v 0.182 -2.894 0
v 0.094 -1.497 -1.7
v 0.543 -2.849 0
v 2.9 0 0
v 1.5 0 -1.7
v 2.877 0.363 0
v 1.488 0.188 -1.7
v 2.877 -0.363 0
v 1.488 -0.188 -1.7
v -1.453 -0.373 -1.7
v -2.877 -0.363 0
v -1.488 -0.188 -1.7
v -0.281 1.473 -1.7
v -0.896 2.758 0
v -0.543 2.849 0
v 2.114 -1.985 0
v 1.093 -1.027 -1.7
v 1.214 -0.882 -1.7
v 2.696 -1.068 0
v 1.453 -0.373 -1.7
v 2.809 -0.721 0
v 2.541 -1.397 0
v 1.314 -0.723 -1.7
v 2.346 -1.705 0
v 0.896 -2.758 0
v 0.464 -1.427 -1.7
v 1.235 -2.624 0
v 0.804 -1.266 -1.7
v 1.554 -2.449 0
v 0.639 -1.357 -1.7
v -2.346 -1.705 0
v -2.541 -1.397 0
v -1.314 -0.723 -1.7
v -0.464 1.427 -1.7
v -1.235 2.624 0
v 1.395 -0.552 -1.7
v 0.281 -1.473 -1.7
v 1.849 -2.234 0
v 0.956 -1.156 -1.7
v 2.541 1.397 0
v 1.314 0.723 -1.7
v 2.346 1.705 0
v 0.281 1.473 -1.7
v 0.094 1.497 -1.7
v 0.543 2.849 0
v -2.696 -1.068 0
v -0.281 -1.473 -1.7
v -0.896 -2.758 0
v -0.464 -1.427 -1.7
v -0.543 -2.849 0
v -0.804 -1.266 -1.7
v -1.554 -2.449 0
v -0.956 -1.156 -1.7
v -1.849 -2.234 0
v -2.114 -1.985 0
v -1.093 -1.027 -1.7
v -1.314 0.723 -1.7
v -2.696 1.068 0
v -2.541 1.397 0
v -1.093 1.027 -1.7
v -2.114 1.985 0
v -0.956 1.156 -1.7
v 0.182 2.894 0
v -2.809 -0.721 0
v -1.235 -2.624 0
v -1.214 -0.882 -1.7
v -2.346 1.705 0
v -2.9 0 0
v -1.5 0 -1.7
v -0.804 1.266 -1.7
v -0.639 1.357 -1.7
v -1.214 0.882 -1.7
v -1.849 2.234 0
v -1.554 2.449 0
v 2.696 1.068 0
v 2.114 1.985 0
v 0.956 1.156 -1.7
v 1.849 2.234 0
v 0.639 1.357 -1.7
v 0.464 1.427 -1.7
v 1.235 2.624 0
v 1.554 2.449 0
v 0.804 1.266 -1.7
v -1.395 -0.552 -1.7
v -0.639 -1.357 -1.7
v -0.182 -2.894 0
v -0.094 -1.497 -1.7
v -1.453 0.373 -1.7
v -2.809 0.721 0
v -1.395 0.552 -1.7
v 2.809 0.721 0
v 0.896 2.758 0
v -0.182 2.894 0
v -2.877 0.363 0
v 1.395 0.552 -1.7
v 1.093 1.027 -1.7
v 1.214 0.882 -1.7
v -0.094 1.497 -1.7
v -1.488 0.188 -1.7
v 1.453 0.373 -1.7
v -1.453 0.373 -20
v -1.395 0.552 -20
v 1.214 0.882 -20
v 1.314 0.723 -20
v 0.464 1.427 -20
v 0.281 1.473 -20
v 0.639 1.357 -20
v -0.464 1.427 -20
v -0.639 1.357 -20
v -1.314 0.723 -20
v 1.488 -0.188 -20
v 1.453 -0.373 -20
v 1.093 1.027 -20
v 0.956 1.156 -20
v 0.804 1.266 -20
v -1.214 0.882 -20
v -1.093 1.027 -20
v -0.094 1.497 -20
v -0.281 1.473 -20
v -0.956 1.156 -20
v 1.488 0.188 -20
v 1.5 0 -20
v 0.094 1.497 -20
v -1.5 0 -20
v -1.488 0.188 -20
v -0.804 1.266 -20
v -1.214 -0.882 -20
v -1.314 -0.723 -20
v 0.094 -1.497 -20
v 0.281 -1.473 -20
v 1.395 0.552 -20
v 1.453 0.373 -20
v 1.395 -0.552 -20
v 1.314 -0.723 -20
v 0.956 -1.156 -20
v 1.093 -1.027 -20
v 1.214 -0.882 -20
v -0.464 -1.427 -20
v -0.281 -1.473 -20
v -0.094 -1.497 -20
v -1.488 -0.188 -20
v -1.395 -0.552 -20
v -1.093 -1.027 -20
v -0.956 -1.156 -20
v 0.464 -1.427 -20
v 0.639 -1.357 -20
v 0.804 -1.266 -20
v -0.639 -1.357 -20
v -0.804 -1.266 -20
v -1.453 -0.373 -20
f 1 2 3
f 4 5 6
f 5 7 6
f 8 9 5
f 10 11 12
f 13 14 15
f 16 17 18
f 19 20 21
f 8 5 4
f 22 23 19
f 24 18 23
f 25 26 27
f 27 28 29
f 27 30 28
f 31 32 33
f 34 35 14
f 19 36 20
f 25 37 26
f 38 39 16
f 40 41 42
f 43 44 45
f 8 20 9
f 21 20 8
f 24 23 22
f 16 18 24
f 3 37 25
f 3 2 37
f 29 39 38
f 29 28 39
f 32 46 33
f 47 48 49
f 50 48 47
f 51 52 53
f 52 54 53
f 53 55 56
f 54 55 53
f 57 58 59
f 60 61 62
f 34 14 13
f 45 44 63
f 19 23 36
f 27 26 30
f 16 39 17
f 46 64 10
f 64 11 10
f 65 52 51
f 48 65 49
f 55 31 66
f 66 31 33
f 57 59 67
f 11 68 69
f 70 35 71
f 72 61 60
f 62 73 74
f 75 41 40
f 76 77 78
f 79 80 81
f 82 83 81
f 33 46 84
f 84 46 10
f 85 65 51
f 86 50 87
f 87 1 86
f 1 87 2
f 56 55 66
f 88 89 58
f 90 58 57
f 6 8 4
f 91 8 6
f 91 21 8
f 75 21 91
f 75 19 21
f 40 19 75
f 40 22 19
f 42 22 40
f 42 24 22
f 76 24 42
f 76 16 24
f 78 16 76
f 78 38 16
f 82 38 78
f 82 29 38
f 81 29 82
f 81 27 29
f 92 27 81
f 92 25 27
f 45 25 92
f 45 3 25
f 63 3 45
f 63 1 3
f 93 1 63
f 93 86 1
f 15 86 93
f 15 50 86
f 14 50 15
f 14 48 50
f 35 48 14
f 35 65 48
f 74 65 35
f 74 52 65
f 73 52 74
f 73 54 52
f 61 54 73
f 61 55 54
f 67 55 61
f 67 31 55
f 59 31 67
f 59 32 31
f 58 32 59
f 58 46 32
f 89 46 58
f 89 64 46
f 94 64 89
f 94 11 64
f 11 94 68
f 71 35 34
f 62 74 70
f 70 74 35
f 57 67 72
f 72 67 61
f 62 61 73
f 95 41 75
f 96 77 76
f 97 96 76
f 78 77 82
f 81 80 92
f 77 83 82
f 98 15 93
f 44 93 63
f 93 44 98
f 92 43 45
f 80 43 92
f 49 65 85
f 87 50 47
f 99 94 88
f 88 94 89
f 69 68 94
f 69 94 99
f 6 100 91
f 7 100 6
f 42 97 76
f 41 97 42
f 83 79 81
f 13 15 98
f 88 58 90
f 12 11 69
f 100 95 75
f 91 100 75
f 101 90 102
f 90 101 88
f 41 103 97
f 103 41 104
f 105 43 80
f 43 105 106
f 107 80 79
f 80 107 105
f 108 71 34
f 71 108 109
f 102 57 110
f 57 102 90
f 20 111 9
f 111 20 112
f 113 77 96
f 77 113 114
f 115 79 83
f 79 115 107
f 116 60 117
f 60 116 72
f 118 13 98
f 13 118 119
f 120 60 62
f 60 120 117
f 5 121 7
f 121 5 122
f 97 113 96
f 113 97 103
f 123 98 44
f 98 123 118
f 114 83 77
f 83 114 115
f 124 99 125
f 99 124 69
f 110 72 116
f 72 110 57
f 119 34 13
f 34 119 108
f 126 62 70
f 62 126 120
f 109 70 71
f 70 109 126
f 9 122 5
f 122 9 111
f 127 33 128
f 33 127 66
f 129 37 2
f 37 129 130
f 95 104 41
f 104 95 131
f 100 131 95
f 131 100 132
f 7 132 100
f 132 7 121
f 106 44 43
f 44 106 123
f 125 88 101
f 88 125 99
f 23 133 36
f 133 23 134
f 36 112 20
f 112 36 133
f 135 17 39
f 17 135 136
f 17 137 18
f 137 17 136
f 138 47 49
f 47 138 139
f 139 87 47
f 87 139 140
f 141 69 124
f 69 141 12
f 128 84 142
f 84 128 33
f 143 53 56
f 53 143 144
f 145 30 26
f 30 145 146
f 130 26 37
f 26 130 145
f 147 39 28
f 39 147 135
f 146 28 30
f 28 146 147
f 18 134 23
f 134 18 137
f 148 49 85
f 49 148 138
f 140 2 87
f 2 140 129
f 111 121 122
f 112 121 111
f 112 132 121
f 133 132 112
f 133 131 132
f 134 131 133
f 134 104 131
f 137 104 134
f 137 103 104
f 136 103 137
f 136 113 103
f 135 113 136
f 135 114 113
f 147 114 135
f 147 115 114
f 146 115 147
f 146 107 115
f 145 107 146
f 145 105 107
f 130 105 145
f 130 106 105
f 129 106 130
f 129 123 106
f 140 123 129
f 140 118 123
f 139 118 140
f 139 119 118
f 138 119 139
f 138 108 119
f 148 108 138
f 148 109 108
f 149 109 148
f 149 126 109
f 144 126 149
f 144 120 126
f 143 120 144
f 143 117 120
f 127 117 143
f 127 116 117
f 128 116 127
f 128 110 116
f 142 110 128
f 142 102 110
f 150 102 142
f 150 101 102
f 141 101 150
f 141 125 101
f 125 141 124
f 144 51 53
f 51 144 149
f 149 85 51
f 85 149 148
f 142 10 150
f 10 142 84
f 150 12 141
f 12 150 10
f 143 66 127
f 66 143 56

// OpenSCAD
// Generated by SolidPython 1.1.3 on 2023-03-13 21:43:02
$fn = 50;


difference() {
	union() {
		translate(v = [0, 0, -1.7000000000]) {
			rotate(a = [0, 0, 0]) {
				cylinder(h = 1.7000000000, r1 = 1.5000000000, r2 = 2.9000000000);
			}
		}
		translate(v = [0, 0, -20]) {
			rotate(a = [0, 0, 0]) {
				cylinder(h = 20, r = 1.5000000000);
			}
		}
	}
	union();
}
/***********************************************
*********      SolidPython code:      **********
************************************************
 
from solid import *
import os
import subprocess

import oomB

import opsc_library_gen

mode = "laser"
#mode = "3d_print"

defined_objects = {}

radius_dict = {}
countersunk_dict = {}


def set_mode(m):
    global mode
    mode = m
    radius_dict['M6'] = 6.5/2
    radius_dict['M3'] = 3.3/2
    if mode == "laser":
        radius_dict['M6'] = 6/2
        radius_dict['M3'] = 3/2

    countersunk_dict['M3'] = {}
    countersunk_dict['M3']['little_rad'] = radius_dict['M3']
    countersunk_dict['M3']['big_rad'] = (5.5+0.6)/2
    if mode == "laser":
        countersunk_dict['M3']['big_rad'] = (4.75+0.6)/2
        countersunk_dict['M3']['little_rad'] = (4.75+0.6)/2

    countersunk_dict['M3']['height'] = 1.7


def opsc_make_object(filename, objects, save_type="none",resolution=50, layers = 1, tilediff = 200, mode="laser", overwrite=True):
    if overwrite or not os.path.exists(filename):
        set_mode(mode)
        save_type = save_type.lower()
        os.makedirs(os.path.dirname(filename), exist_ok=True)
        final_object = opsc_get_object(objects, mode = mode)
        # Save the final object to the specified filename    
        scad_render_to_file(final_object, filename, file_header='$fn = %s;' % resolution, include_orig_code=True)
        if save_type == "all":
            saveToAll(filename)
        elif save_type == "dxf":
            saveToDxf(filename)
        if mode == "laser":
            filename_laser = filename.replace(".scad","-flat.scad")
            scad_render_to_file(getLaser(final_object, layers=layers, tilediff=tilediff), filename_laser, file_header='$fn = %s;' % resolution, include_orig_code=True)
            if save_type == "all":
                saveToAll(filename_laser)
            elif save_type == "dxf":
                saveToDxf(filename_laser)


def opsc_get_object(objects, mode = "laser"):
    # Create the solidpython objects only include the positive objects and if they don't have inclusion or their inclusion is either all or mode
    # Initialize an empty list to store the results
    positive_objects = []

    # Iterate over the "objects" list
    for obj in objects:
        # Check if the current object has a "type" key with a value of "positive"
        if obj['type'] == 'positive':
            # Check if the current object has an "inclusion" key and its value matches "mode",
            # or if the current object does not have an "inclusion" key at all
            if not 'inclusion' in obj or obj['inclusion'] == "all" or obj['inclusion'] == mode:
                # Call the "get_opsc_item" function with the current object as an argument
                opsc_item = get_opsc_item(obj)
                # Add the result to the "positive_objects" list
                positive_objects.append(opsc_item)
# Initialize an empty list to store the results
    negative_objects = []

    # Iterate over the "objects" list
    for obj in objects:
        # Check if the current object has a "type" key with a value of "negative"
        if obj['type'] == 'negative':
            # Check if the current object has an "inclusion" key and its value matches "mode",
            # or if the current object does not have an "inclusion" key at all
            if not 'inclusion' in obj or obj['inclusion'] == "all" or obj['inclusion'] == mode:
                # Call the "get_opsc_item" function with the current object as an argument
                opsc_item = get_opsc_item(obj)
                # Add the result to the "negative_objects" list
                negative_objects.append(opsc_item)
    
    #positive_objects = [get_opsc_item(obj) for obj in objects if obj['type'] == 'positive']
    #negative_objects = [get_opsc_item(obj) for obj in objects if obj['type'] == 'negative']
    # Union the positive objects
    positive_object = union()(*positive_objects)
    # Union the negative objects
    negative_object = union()(*negative_objects)
    # Create the final object by subtracting the negative objects from the positive objects
    return difference()(positive_object, negative_object)

def get_opsc_item(params):
    # A dictionary to map radius string values to numerical values
    #radius_dict = {'small': 5, 'medium': 10, 'large': 15}
    # An array of function names for basic shapes
    basic_shapes = ['cube', 'sphere', 'cylinder']
    
    # An array of function names for other shapes
    other_shapes = ['hole', 'slot', 'rounded_rectangle', 'countersunk', 'polyg']
    


    # Convert radius to r if present, and remove radius from the params dictionary
    if 'radius' in params:
        if isinstance(params['radius'], str):
            # Use the radius_dict to map the radius string value to a numerical value
            params['r'] = radius_dict[params['radius']]
        else:
            params['r'] = params['radius']
        del params['radius']
    

    # Check if the object type is a basic shape
    if params['shape'] in basic_shapes:
        # Remove shape and unexpected dictionary values
        allowed_keys = {'size', 'r', 'r1', 'r2', 'd', 'h', 'rw', 'rh', 'dw', 'dh'}
        shape_params = {k: v for k, v in params.items() if k in allowed_keys}

        #params['m'] = "#"
        ###split for adding modifier
        try:
            m = params['m']
            func = globals()[params['shape']]
            return_value = get_opsc_transform(params,func(**shape_params))
            return_value = (return_value).set_modifier(m)
            return return_value
        except KeyError as e:
            return get_opsc_transform(params,globals()[params['shape']](**shape_params))
        
    elif params['shape'] == 'polygon':
        # Remove shape and unexpected dictionary values
        h  = params['height']
        allowed_keys = {'points'}
        shape_params = {k: v for k, v in params.items() if k in allowed_keys}

        # Call the corresponding function for the shape parameter, using ** notation to pass the shape_params dictionary as keyword arguments
        params["rot"] = [0,0,0]        
        try:
            m = params['m']
            func = globals()[params['shape']]
            return_value = get_opsc_transform(params,linear_extrude(h)(globals()[params['shape']](**shape_params)))
            return_value = (return_value).set_modifier(m)
            return return_value
        except KeyError as e:
            return_value = get_opsc_transform(params,linear_extrude(h)(globals()[params['shape']](**shape_params)))
            return_value = (return_value)
            return return_value


    # If the object type is not a basic shape, check if it's a defined object or one of the other shapes
    elif params['shape'] in other_shapes:
        # Call the corresponding function for the shape parameter, passing the params dictionary as an argument
        p2 = copy.deepcopy(params)
        p2["pos"] = [0,0,0]
        return get_opsc_transform(params,globals()[params['shape']](p2))
    
    # If the object is not a basic shape or a defined object, try to import it from a .scad file
    else:
        obj = defined_objects[params['shape']]
        return get_opsc_transform(params,obj)

def get_opsc_transform(params, solid_obj):
    # Rotate the object based on the 'rot' field in the params dictionary, or the 'rotX', 'rotY', and 'rotZ' fields if 'rot' is not present
    rot = params.get('rot', [])
    if rot:
        rotX, rotY, rotZ = rot
    else:
        rotX = params.get('rotX', 0)
        rotY = params.get('rotY', 0)
        rotZ = params.get('rotZ', 0)
    solid_obj = rotate([rotX, rotY, rotZ])(solid_obj)

    # Translate the object based on the 'pos' field in the params dictionary, or the 'x', 'y', and 'z' fields if 'pos' is not present
    pos = params.get('pos', [])
    if pos:
        x, y, z = pos
    else:
        x = params.get('x', 0)
        y = params.get('y', 0)
        z = params.get('z', 0)
    solid_obj = translate([x, y, z])(solid_obj)
    return solid_obj


import random

def opsc_easy_array(type, shape, repeats, pos_start, shift_arr, **kwargs):
    for i in range(0,3):
        repeats.append(1)
        pos_start.append(0)
        shift_arr.append(0)
    return_objects = []

    for x in range(0,repeats[0]):
        for y in range(0,repeats[1]):
            for z in range(0,repeats[2]):
                return_objects.append(opsc_easy(type, shape, pos=[pos_start[0]+x*shift_arr[0],pos_start[1]+y*shift_arr[1],pos_start[2]+z*shift_arr[2]], **kwargs))
    return return_objects                



def opsc_easy(type, shape, **kwargs):
    obj = {
        'type': type,
        'shape': shape
    }
    for param in ['size', 'r', 'r1', 'r2', 'd', 'h', 'rw', 'rh', 'dw', 'dh', 'pos', 'x', 'y', 'z', 'rot', 'rotX', 'rotY', 'rotZ', "w", "inclusion", 'sides', 'height', "m"]:
        if param in kwargs:
            obj[param] = kwargs[param]
    return obj

def hole(params):
    p2 = copy.deepcopy(params)  
    # Check if the radius is a string and replace it with the corresponding value from the dictionary
    if isinstance(p2['r'], str):
        p2['r'] = radius_dict[p2['r']]
    
    # Set the height to 100 if not specified
    if 'h' not in p2:
        p2['h'] = 100
        p2["pos"] = [0,0,-50]
    p2["center"] = True
    # Create the cylinder object
    p2["shape"] = "cylinder"
    p2["type"] = "positive"

    return get_opsc_item(p2)

import copy

def countersunk(params):
    p2 = copy.deepcopy(params)
    counter_rad = p2['r']
    p2['r'] = radius_dict[p2['r']]
    hp = copy.deepcopy(p2)
    hp["type"] = "positive"
    hp["shape"] = "hole"
    del hp["rot"]
    hol = get_opsc_item(hp)
    
    cp = copy.deepcopy(p2)
    cp["h"] = countersunk_dict[counter_rad]["height"]
    cp["r2"] = countersunk_dict[counter_rad]["little_rad"]
    cp["r1"] = countersunk_dict[counter_rad]["big_rad"]
    del cp["r"]
    del cp["rot"]
    cp["type"] = "positive"
    cp["shape"] = "cylinder"
    cp["pos"] = [0,0,0]

    top = get_opsc_item(cp)
    return union()(hol,top)



def slot(params):  
    p2 = copy.deepcopy(params) 
    if isinstance(p2['r'], str):
        p2['r'] = radius_dict[p2['r']]
    p2["type"] = "positive"
    p2["shape"] = "hole"
    del p2["rot"]
    p2["pos"] = [0,0,0]
    left = copy.deepcopy(p2)
    right = copy.deepcopy(p2)
    left["pos"][0] = p2["w"] / 2 - p2["r"] 
    
    right["pos"][0] = -p2["w"] / 2 + p2["r"] 
    pass
    leftObj = get_opsc_item(left)
    rightObj = get_opsc_item(right)
    return hull()(leftObj, rightObj)

def rounded_rectangle(params):   
    p2 = copy.deepcopy(params) 
    p2["h"] = p2["size"][2]
    p2["pos"] = p2.get("pos", [0, 0, 0]) 
    p2["type"] = "positive"
    p2["shape"] = "hole"
    p2["pos"] = [0,0,0]
    
    if 'rot' in p2:
        del p2["rot"]   
    if 'r' not in p2:
        p2["r"] = 5 
    tl = copy.deepcopy(p2)
    tr = copy.deepcopy(p2)
    bl = copy.deepcopy(p2)
    br = copy.deepcopy(p2)
    tl["pos"][0] = -(p2["size"][0] - p2["r"]*2)/2
    tl["pos"][1] = (p2["size"][1] - p2["r"]*2)/2
    tr["pos"][0] = (p2["size"][0] - p2["r"]*2)/2
    tr["pos"][1] = (p2["size"][1] - p2["r"]*2)/2
    bl["pos"][0] = -(p2["size"][0] - p2["r"]*2)/2
    bl["pos"][1] = -(p2["size"][1] - p2["r"]*2)/2
    br["pos"][0] = (p2["size"][0] - p2["r"]*2)/2
    br["pos"][1] = -(p2["size"][1] - p2["r"]*2)/2
    del tl["size"]
    del tr["size"]
    del bl["size"]
    del br["size"]
    tlo = get_opsc_item(tl)
    tro = get_opsc_item(tr)
    blo = get_opsc_item(bl)
    bro = get_opsc_item(br)    
    return hull()(tlo, tro, blo, bro)



def polyg(params):
    p2 = copy.deepcopy(params) 
    p2["type"] = "positive"
    p2["shape"] = "polygon"
    p2["pos"] = [0,0,0]
    sides = p2["sides"]
    radius = p2["r"]    
    angles = [i * 360 / sides for i in range(sides)]
    points = regular_polygon(sides, radius)
    
    p2["points"] = points
    return get_opsc_item(p2)

import math

def regular_polygon(num_sides, radius):
    # Calculate the angle between each side
    angle = 2 * math.pi / num_sides

    # Calculate the points of the polygon
    points = []
    for i in range(num_sides):
        x = radius * math.cos(i * angle)
        y = radius * math.sin(i * angle)
        points.append((x, y))
    return points

def import_scad_object(filename):
    # Import the .scad file and convert it to a solidpython object
    #filename = "parts"
    obj = import_scad(filename)
    return obj.main()



import os
import solid as solidpython

# A dictionary to store the defined objects


def load_scad_objects():
    opsc_library_gen.gen_library(defined_objects)

import random

def test(num_objects):
    objects = []
    for i in range(num_objects):
        # Choose a random shape
        #shape = random.choice(['cube', 'sphere', 'cylinder', 'hole', 'slot', "rounded_rectangle"])
        shape = random.choice(["rounded_rectangle"])

        # Choose a random type
        type = random.choice(['positive', 'negative'])
        
        # Create an empty object dictionary
        obj = {'shape': shape, 'type': type}
        
        # Set shape-specific parameters
        if obj['shape'] in ['cube']:
            obj['size'] =  [random.uniform(5, 15), random.uniform(5, 15), random.uniform(5, 15)]
        if obj['shape'] in ['rounded_rectangle']:
            obj['size'] =  [random.uniform(5, 15), random.uniform(5, 15), random.uniform(5, 15)]
            obj['r'] = random.uniform(0.5, 5)
        elif obj['shape'] == 'sphere':
            obj['r'] = random.uniform(5, 15)
        elif obj['shape'] in ['cylinder', 'hole']:
            obj['r'] = random.uniform(0.5, 5)
            obj['h'] = random.uniform(5, 15)
        elif obj['shape'] == 'slot':
            obj['r'] = random.uniform(0.5, 5)
            obj['h'] = random.uniform(5, 15)
            obj['w'] = random.uniform(5, 15)
        
        # Set a random position and rotation
        obj['pos'] = [random.uniform(-20, 20), random.uniform(-20, 20), random.uniform(-20, 20)]
        obj['rot'] = [random.uniform(-180, 180), random.uniform(-180, 180), random.uniform(-180, 180)]
        
        # Add the object to the list
        objects.append(obj)
    return objects

####### old file saving
def saveToAll(fileIn):
    saveToStl(fileIn)
    saveToDxf(fileIn)
    saveToPng(fileIn)
    saveToSvg(fileIn)

def saveToDxf(fileIn, fileOut="", copy_to_laser=True):
    if fileOut == "":
        fileOut = fileIn.replace(".scad",".dxf")
    saveToFile(fileIn, fileOut)


    
def saveToPng(fileIn, fileOut="",extra="--render"):
    if fileOut == "":
        fileOut = fileIn.replace(".scad",".png")
    saveToFile(fileIn, fileOut)

def saveToStl(fileIn, fileOut=""):
    if fileOut == "":
        fileOut = fileIn.replace(".scad",".stl")
    saveToFile(fileIn, fileOut)
    
def saveToSvg(fileIn, fileOut=""):
    if fileOut == "":
        fileOut = fileIn.replace(".scad",".svg")
    saveToFile(fileIn, fileOut)

def saveToFile(fileIn, fileOut,extra=""):
    #extra = extra + " --colorscheme Tomorrow"

    launchStr = 'openscad -o "' + fileOut + '"' + extra + ' "' + fileIn + '"'
    if ".png" in fileOut:
        launchStr = launchStr + " --render"
    print("            saveToFile launch string: " + launchStr)
    subprocess.run(launchStr)
    x=0

def getLaser(final_object,start=1.5,layers=1,thickness=3,tilediff=200):
        rv= []

        for x in range(layers):
            rv.append(translate([0,x*tilediff,0])(
                    projection()(
                        intersection()(translate([-500,-500,start+x*thickness])(cube(size=[1000,1000,0.1])),
                            final_object
                        )
                    )
            )
            )
            
        return union()(rv)

set_mode("laser")
load_scad_objects() 
 
************************************************/
